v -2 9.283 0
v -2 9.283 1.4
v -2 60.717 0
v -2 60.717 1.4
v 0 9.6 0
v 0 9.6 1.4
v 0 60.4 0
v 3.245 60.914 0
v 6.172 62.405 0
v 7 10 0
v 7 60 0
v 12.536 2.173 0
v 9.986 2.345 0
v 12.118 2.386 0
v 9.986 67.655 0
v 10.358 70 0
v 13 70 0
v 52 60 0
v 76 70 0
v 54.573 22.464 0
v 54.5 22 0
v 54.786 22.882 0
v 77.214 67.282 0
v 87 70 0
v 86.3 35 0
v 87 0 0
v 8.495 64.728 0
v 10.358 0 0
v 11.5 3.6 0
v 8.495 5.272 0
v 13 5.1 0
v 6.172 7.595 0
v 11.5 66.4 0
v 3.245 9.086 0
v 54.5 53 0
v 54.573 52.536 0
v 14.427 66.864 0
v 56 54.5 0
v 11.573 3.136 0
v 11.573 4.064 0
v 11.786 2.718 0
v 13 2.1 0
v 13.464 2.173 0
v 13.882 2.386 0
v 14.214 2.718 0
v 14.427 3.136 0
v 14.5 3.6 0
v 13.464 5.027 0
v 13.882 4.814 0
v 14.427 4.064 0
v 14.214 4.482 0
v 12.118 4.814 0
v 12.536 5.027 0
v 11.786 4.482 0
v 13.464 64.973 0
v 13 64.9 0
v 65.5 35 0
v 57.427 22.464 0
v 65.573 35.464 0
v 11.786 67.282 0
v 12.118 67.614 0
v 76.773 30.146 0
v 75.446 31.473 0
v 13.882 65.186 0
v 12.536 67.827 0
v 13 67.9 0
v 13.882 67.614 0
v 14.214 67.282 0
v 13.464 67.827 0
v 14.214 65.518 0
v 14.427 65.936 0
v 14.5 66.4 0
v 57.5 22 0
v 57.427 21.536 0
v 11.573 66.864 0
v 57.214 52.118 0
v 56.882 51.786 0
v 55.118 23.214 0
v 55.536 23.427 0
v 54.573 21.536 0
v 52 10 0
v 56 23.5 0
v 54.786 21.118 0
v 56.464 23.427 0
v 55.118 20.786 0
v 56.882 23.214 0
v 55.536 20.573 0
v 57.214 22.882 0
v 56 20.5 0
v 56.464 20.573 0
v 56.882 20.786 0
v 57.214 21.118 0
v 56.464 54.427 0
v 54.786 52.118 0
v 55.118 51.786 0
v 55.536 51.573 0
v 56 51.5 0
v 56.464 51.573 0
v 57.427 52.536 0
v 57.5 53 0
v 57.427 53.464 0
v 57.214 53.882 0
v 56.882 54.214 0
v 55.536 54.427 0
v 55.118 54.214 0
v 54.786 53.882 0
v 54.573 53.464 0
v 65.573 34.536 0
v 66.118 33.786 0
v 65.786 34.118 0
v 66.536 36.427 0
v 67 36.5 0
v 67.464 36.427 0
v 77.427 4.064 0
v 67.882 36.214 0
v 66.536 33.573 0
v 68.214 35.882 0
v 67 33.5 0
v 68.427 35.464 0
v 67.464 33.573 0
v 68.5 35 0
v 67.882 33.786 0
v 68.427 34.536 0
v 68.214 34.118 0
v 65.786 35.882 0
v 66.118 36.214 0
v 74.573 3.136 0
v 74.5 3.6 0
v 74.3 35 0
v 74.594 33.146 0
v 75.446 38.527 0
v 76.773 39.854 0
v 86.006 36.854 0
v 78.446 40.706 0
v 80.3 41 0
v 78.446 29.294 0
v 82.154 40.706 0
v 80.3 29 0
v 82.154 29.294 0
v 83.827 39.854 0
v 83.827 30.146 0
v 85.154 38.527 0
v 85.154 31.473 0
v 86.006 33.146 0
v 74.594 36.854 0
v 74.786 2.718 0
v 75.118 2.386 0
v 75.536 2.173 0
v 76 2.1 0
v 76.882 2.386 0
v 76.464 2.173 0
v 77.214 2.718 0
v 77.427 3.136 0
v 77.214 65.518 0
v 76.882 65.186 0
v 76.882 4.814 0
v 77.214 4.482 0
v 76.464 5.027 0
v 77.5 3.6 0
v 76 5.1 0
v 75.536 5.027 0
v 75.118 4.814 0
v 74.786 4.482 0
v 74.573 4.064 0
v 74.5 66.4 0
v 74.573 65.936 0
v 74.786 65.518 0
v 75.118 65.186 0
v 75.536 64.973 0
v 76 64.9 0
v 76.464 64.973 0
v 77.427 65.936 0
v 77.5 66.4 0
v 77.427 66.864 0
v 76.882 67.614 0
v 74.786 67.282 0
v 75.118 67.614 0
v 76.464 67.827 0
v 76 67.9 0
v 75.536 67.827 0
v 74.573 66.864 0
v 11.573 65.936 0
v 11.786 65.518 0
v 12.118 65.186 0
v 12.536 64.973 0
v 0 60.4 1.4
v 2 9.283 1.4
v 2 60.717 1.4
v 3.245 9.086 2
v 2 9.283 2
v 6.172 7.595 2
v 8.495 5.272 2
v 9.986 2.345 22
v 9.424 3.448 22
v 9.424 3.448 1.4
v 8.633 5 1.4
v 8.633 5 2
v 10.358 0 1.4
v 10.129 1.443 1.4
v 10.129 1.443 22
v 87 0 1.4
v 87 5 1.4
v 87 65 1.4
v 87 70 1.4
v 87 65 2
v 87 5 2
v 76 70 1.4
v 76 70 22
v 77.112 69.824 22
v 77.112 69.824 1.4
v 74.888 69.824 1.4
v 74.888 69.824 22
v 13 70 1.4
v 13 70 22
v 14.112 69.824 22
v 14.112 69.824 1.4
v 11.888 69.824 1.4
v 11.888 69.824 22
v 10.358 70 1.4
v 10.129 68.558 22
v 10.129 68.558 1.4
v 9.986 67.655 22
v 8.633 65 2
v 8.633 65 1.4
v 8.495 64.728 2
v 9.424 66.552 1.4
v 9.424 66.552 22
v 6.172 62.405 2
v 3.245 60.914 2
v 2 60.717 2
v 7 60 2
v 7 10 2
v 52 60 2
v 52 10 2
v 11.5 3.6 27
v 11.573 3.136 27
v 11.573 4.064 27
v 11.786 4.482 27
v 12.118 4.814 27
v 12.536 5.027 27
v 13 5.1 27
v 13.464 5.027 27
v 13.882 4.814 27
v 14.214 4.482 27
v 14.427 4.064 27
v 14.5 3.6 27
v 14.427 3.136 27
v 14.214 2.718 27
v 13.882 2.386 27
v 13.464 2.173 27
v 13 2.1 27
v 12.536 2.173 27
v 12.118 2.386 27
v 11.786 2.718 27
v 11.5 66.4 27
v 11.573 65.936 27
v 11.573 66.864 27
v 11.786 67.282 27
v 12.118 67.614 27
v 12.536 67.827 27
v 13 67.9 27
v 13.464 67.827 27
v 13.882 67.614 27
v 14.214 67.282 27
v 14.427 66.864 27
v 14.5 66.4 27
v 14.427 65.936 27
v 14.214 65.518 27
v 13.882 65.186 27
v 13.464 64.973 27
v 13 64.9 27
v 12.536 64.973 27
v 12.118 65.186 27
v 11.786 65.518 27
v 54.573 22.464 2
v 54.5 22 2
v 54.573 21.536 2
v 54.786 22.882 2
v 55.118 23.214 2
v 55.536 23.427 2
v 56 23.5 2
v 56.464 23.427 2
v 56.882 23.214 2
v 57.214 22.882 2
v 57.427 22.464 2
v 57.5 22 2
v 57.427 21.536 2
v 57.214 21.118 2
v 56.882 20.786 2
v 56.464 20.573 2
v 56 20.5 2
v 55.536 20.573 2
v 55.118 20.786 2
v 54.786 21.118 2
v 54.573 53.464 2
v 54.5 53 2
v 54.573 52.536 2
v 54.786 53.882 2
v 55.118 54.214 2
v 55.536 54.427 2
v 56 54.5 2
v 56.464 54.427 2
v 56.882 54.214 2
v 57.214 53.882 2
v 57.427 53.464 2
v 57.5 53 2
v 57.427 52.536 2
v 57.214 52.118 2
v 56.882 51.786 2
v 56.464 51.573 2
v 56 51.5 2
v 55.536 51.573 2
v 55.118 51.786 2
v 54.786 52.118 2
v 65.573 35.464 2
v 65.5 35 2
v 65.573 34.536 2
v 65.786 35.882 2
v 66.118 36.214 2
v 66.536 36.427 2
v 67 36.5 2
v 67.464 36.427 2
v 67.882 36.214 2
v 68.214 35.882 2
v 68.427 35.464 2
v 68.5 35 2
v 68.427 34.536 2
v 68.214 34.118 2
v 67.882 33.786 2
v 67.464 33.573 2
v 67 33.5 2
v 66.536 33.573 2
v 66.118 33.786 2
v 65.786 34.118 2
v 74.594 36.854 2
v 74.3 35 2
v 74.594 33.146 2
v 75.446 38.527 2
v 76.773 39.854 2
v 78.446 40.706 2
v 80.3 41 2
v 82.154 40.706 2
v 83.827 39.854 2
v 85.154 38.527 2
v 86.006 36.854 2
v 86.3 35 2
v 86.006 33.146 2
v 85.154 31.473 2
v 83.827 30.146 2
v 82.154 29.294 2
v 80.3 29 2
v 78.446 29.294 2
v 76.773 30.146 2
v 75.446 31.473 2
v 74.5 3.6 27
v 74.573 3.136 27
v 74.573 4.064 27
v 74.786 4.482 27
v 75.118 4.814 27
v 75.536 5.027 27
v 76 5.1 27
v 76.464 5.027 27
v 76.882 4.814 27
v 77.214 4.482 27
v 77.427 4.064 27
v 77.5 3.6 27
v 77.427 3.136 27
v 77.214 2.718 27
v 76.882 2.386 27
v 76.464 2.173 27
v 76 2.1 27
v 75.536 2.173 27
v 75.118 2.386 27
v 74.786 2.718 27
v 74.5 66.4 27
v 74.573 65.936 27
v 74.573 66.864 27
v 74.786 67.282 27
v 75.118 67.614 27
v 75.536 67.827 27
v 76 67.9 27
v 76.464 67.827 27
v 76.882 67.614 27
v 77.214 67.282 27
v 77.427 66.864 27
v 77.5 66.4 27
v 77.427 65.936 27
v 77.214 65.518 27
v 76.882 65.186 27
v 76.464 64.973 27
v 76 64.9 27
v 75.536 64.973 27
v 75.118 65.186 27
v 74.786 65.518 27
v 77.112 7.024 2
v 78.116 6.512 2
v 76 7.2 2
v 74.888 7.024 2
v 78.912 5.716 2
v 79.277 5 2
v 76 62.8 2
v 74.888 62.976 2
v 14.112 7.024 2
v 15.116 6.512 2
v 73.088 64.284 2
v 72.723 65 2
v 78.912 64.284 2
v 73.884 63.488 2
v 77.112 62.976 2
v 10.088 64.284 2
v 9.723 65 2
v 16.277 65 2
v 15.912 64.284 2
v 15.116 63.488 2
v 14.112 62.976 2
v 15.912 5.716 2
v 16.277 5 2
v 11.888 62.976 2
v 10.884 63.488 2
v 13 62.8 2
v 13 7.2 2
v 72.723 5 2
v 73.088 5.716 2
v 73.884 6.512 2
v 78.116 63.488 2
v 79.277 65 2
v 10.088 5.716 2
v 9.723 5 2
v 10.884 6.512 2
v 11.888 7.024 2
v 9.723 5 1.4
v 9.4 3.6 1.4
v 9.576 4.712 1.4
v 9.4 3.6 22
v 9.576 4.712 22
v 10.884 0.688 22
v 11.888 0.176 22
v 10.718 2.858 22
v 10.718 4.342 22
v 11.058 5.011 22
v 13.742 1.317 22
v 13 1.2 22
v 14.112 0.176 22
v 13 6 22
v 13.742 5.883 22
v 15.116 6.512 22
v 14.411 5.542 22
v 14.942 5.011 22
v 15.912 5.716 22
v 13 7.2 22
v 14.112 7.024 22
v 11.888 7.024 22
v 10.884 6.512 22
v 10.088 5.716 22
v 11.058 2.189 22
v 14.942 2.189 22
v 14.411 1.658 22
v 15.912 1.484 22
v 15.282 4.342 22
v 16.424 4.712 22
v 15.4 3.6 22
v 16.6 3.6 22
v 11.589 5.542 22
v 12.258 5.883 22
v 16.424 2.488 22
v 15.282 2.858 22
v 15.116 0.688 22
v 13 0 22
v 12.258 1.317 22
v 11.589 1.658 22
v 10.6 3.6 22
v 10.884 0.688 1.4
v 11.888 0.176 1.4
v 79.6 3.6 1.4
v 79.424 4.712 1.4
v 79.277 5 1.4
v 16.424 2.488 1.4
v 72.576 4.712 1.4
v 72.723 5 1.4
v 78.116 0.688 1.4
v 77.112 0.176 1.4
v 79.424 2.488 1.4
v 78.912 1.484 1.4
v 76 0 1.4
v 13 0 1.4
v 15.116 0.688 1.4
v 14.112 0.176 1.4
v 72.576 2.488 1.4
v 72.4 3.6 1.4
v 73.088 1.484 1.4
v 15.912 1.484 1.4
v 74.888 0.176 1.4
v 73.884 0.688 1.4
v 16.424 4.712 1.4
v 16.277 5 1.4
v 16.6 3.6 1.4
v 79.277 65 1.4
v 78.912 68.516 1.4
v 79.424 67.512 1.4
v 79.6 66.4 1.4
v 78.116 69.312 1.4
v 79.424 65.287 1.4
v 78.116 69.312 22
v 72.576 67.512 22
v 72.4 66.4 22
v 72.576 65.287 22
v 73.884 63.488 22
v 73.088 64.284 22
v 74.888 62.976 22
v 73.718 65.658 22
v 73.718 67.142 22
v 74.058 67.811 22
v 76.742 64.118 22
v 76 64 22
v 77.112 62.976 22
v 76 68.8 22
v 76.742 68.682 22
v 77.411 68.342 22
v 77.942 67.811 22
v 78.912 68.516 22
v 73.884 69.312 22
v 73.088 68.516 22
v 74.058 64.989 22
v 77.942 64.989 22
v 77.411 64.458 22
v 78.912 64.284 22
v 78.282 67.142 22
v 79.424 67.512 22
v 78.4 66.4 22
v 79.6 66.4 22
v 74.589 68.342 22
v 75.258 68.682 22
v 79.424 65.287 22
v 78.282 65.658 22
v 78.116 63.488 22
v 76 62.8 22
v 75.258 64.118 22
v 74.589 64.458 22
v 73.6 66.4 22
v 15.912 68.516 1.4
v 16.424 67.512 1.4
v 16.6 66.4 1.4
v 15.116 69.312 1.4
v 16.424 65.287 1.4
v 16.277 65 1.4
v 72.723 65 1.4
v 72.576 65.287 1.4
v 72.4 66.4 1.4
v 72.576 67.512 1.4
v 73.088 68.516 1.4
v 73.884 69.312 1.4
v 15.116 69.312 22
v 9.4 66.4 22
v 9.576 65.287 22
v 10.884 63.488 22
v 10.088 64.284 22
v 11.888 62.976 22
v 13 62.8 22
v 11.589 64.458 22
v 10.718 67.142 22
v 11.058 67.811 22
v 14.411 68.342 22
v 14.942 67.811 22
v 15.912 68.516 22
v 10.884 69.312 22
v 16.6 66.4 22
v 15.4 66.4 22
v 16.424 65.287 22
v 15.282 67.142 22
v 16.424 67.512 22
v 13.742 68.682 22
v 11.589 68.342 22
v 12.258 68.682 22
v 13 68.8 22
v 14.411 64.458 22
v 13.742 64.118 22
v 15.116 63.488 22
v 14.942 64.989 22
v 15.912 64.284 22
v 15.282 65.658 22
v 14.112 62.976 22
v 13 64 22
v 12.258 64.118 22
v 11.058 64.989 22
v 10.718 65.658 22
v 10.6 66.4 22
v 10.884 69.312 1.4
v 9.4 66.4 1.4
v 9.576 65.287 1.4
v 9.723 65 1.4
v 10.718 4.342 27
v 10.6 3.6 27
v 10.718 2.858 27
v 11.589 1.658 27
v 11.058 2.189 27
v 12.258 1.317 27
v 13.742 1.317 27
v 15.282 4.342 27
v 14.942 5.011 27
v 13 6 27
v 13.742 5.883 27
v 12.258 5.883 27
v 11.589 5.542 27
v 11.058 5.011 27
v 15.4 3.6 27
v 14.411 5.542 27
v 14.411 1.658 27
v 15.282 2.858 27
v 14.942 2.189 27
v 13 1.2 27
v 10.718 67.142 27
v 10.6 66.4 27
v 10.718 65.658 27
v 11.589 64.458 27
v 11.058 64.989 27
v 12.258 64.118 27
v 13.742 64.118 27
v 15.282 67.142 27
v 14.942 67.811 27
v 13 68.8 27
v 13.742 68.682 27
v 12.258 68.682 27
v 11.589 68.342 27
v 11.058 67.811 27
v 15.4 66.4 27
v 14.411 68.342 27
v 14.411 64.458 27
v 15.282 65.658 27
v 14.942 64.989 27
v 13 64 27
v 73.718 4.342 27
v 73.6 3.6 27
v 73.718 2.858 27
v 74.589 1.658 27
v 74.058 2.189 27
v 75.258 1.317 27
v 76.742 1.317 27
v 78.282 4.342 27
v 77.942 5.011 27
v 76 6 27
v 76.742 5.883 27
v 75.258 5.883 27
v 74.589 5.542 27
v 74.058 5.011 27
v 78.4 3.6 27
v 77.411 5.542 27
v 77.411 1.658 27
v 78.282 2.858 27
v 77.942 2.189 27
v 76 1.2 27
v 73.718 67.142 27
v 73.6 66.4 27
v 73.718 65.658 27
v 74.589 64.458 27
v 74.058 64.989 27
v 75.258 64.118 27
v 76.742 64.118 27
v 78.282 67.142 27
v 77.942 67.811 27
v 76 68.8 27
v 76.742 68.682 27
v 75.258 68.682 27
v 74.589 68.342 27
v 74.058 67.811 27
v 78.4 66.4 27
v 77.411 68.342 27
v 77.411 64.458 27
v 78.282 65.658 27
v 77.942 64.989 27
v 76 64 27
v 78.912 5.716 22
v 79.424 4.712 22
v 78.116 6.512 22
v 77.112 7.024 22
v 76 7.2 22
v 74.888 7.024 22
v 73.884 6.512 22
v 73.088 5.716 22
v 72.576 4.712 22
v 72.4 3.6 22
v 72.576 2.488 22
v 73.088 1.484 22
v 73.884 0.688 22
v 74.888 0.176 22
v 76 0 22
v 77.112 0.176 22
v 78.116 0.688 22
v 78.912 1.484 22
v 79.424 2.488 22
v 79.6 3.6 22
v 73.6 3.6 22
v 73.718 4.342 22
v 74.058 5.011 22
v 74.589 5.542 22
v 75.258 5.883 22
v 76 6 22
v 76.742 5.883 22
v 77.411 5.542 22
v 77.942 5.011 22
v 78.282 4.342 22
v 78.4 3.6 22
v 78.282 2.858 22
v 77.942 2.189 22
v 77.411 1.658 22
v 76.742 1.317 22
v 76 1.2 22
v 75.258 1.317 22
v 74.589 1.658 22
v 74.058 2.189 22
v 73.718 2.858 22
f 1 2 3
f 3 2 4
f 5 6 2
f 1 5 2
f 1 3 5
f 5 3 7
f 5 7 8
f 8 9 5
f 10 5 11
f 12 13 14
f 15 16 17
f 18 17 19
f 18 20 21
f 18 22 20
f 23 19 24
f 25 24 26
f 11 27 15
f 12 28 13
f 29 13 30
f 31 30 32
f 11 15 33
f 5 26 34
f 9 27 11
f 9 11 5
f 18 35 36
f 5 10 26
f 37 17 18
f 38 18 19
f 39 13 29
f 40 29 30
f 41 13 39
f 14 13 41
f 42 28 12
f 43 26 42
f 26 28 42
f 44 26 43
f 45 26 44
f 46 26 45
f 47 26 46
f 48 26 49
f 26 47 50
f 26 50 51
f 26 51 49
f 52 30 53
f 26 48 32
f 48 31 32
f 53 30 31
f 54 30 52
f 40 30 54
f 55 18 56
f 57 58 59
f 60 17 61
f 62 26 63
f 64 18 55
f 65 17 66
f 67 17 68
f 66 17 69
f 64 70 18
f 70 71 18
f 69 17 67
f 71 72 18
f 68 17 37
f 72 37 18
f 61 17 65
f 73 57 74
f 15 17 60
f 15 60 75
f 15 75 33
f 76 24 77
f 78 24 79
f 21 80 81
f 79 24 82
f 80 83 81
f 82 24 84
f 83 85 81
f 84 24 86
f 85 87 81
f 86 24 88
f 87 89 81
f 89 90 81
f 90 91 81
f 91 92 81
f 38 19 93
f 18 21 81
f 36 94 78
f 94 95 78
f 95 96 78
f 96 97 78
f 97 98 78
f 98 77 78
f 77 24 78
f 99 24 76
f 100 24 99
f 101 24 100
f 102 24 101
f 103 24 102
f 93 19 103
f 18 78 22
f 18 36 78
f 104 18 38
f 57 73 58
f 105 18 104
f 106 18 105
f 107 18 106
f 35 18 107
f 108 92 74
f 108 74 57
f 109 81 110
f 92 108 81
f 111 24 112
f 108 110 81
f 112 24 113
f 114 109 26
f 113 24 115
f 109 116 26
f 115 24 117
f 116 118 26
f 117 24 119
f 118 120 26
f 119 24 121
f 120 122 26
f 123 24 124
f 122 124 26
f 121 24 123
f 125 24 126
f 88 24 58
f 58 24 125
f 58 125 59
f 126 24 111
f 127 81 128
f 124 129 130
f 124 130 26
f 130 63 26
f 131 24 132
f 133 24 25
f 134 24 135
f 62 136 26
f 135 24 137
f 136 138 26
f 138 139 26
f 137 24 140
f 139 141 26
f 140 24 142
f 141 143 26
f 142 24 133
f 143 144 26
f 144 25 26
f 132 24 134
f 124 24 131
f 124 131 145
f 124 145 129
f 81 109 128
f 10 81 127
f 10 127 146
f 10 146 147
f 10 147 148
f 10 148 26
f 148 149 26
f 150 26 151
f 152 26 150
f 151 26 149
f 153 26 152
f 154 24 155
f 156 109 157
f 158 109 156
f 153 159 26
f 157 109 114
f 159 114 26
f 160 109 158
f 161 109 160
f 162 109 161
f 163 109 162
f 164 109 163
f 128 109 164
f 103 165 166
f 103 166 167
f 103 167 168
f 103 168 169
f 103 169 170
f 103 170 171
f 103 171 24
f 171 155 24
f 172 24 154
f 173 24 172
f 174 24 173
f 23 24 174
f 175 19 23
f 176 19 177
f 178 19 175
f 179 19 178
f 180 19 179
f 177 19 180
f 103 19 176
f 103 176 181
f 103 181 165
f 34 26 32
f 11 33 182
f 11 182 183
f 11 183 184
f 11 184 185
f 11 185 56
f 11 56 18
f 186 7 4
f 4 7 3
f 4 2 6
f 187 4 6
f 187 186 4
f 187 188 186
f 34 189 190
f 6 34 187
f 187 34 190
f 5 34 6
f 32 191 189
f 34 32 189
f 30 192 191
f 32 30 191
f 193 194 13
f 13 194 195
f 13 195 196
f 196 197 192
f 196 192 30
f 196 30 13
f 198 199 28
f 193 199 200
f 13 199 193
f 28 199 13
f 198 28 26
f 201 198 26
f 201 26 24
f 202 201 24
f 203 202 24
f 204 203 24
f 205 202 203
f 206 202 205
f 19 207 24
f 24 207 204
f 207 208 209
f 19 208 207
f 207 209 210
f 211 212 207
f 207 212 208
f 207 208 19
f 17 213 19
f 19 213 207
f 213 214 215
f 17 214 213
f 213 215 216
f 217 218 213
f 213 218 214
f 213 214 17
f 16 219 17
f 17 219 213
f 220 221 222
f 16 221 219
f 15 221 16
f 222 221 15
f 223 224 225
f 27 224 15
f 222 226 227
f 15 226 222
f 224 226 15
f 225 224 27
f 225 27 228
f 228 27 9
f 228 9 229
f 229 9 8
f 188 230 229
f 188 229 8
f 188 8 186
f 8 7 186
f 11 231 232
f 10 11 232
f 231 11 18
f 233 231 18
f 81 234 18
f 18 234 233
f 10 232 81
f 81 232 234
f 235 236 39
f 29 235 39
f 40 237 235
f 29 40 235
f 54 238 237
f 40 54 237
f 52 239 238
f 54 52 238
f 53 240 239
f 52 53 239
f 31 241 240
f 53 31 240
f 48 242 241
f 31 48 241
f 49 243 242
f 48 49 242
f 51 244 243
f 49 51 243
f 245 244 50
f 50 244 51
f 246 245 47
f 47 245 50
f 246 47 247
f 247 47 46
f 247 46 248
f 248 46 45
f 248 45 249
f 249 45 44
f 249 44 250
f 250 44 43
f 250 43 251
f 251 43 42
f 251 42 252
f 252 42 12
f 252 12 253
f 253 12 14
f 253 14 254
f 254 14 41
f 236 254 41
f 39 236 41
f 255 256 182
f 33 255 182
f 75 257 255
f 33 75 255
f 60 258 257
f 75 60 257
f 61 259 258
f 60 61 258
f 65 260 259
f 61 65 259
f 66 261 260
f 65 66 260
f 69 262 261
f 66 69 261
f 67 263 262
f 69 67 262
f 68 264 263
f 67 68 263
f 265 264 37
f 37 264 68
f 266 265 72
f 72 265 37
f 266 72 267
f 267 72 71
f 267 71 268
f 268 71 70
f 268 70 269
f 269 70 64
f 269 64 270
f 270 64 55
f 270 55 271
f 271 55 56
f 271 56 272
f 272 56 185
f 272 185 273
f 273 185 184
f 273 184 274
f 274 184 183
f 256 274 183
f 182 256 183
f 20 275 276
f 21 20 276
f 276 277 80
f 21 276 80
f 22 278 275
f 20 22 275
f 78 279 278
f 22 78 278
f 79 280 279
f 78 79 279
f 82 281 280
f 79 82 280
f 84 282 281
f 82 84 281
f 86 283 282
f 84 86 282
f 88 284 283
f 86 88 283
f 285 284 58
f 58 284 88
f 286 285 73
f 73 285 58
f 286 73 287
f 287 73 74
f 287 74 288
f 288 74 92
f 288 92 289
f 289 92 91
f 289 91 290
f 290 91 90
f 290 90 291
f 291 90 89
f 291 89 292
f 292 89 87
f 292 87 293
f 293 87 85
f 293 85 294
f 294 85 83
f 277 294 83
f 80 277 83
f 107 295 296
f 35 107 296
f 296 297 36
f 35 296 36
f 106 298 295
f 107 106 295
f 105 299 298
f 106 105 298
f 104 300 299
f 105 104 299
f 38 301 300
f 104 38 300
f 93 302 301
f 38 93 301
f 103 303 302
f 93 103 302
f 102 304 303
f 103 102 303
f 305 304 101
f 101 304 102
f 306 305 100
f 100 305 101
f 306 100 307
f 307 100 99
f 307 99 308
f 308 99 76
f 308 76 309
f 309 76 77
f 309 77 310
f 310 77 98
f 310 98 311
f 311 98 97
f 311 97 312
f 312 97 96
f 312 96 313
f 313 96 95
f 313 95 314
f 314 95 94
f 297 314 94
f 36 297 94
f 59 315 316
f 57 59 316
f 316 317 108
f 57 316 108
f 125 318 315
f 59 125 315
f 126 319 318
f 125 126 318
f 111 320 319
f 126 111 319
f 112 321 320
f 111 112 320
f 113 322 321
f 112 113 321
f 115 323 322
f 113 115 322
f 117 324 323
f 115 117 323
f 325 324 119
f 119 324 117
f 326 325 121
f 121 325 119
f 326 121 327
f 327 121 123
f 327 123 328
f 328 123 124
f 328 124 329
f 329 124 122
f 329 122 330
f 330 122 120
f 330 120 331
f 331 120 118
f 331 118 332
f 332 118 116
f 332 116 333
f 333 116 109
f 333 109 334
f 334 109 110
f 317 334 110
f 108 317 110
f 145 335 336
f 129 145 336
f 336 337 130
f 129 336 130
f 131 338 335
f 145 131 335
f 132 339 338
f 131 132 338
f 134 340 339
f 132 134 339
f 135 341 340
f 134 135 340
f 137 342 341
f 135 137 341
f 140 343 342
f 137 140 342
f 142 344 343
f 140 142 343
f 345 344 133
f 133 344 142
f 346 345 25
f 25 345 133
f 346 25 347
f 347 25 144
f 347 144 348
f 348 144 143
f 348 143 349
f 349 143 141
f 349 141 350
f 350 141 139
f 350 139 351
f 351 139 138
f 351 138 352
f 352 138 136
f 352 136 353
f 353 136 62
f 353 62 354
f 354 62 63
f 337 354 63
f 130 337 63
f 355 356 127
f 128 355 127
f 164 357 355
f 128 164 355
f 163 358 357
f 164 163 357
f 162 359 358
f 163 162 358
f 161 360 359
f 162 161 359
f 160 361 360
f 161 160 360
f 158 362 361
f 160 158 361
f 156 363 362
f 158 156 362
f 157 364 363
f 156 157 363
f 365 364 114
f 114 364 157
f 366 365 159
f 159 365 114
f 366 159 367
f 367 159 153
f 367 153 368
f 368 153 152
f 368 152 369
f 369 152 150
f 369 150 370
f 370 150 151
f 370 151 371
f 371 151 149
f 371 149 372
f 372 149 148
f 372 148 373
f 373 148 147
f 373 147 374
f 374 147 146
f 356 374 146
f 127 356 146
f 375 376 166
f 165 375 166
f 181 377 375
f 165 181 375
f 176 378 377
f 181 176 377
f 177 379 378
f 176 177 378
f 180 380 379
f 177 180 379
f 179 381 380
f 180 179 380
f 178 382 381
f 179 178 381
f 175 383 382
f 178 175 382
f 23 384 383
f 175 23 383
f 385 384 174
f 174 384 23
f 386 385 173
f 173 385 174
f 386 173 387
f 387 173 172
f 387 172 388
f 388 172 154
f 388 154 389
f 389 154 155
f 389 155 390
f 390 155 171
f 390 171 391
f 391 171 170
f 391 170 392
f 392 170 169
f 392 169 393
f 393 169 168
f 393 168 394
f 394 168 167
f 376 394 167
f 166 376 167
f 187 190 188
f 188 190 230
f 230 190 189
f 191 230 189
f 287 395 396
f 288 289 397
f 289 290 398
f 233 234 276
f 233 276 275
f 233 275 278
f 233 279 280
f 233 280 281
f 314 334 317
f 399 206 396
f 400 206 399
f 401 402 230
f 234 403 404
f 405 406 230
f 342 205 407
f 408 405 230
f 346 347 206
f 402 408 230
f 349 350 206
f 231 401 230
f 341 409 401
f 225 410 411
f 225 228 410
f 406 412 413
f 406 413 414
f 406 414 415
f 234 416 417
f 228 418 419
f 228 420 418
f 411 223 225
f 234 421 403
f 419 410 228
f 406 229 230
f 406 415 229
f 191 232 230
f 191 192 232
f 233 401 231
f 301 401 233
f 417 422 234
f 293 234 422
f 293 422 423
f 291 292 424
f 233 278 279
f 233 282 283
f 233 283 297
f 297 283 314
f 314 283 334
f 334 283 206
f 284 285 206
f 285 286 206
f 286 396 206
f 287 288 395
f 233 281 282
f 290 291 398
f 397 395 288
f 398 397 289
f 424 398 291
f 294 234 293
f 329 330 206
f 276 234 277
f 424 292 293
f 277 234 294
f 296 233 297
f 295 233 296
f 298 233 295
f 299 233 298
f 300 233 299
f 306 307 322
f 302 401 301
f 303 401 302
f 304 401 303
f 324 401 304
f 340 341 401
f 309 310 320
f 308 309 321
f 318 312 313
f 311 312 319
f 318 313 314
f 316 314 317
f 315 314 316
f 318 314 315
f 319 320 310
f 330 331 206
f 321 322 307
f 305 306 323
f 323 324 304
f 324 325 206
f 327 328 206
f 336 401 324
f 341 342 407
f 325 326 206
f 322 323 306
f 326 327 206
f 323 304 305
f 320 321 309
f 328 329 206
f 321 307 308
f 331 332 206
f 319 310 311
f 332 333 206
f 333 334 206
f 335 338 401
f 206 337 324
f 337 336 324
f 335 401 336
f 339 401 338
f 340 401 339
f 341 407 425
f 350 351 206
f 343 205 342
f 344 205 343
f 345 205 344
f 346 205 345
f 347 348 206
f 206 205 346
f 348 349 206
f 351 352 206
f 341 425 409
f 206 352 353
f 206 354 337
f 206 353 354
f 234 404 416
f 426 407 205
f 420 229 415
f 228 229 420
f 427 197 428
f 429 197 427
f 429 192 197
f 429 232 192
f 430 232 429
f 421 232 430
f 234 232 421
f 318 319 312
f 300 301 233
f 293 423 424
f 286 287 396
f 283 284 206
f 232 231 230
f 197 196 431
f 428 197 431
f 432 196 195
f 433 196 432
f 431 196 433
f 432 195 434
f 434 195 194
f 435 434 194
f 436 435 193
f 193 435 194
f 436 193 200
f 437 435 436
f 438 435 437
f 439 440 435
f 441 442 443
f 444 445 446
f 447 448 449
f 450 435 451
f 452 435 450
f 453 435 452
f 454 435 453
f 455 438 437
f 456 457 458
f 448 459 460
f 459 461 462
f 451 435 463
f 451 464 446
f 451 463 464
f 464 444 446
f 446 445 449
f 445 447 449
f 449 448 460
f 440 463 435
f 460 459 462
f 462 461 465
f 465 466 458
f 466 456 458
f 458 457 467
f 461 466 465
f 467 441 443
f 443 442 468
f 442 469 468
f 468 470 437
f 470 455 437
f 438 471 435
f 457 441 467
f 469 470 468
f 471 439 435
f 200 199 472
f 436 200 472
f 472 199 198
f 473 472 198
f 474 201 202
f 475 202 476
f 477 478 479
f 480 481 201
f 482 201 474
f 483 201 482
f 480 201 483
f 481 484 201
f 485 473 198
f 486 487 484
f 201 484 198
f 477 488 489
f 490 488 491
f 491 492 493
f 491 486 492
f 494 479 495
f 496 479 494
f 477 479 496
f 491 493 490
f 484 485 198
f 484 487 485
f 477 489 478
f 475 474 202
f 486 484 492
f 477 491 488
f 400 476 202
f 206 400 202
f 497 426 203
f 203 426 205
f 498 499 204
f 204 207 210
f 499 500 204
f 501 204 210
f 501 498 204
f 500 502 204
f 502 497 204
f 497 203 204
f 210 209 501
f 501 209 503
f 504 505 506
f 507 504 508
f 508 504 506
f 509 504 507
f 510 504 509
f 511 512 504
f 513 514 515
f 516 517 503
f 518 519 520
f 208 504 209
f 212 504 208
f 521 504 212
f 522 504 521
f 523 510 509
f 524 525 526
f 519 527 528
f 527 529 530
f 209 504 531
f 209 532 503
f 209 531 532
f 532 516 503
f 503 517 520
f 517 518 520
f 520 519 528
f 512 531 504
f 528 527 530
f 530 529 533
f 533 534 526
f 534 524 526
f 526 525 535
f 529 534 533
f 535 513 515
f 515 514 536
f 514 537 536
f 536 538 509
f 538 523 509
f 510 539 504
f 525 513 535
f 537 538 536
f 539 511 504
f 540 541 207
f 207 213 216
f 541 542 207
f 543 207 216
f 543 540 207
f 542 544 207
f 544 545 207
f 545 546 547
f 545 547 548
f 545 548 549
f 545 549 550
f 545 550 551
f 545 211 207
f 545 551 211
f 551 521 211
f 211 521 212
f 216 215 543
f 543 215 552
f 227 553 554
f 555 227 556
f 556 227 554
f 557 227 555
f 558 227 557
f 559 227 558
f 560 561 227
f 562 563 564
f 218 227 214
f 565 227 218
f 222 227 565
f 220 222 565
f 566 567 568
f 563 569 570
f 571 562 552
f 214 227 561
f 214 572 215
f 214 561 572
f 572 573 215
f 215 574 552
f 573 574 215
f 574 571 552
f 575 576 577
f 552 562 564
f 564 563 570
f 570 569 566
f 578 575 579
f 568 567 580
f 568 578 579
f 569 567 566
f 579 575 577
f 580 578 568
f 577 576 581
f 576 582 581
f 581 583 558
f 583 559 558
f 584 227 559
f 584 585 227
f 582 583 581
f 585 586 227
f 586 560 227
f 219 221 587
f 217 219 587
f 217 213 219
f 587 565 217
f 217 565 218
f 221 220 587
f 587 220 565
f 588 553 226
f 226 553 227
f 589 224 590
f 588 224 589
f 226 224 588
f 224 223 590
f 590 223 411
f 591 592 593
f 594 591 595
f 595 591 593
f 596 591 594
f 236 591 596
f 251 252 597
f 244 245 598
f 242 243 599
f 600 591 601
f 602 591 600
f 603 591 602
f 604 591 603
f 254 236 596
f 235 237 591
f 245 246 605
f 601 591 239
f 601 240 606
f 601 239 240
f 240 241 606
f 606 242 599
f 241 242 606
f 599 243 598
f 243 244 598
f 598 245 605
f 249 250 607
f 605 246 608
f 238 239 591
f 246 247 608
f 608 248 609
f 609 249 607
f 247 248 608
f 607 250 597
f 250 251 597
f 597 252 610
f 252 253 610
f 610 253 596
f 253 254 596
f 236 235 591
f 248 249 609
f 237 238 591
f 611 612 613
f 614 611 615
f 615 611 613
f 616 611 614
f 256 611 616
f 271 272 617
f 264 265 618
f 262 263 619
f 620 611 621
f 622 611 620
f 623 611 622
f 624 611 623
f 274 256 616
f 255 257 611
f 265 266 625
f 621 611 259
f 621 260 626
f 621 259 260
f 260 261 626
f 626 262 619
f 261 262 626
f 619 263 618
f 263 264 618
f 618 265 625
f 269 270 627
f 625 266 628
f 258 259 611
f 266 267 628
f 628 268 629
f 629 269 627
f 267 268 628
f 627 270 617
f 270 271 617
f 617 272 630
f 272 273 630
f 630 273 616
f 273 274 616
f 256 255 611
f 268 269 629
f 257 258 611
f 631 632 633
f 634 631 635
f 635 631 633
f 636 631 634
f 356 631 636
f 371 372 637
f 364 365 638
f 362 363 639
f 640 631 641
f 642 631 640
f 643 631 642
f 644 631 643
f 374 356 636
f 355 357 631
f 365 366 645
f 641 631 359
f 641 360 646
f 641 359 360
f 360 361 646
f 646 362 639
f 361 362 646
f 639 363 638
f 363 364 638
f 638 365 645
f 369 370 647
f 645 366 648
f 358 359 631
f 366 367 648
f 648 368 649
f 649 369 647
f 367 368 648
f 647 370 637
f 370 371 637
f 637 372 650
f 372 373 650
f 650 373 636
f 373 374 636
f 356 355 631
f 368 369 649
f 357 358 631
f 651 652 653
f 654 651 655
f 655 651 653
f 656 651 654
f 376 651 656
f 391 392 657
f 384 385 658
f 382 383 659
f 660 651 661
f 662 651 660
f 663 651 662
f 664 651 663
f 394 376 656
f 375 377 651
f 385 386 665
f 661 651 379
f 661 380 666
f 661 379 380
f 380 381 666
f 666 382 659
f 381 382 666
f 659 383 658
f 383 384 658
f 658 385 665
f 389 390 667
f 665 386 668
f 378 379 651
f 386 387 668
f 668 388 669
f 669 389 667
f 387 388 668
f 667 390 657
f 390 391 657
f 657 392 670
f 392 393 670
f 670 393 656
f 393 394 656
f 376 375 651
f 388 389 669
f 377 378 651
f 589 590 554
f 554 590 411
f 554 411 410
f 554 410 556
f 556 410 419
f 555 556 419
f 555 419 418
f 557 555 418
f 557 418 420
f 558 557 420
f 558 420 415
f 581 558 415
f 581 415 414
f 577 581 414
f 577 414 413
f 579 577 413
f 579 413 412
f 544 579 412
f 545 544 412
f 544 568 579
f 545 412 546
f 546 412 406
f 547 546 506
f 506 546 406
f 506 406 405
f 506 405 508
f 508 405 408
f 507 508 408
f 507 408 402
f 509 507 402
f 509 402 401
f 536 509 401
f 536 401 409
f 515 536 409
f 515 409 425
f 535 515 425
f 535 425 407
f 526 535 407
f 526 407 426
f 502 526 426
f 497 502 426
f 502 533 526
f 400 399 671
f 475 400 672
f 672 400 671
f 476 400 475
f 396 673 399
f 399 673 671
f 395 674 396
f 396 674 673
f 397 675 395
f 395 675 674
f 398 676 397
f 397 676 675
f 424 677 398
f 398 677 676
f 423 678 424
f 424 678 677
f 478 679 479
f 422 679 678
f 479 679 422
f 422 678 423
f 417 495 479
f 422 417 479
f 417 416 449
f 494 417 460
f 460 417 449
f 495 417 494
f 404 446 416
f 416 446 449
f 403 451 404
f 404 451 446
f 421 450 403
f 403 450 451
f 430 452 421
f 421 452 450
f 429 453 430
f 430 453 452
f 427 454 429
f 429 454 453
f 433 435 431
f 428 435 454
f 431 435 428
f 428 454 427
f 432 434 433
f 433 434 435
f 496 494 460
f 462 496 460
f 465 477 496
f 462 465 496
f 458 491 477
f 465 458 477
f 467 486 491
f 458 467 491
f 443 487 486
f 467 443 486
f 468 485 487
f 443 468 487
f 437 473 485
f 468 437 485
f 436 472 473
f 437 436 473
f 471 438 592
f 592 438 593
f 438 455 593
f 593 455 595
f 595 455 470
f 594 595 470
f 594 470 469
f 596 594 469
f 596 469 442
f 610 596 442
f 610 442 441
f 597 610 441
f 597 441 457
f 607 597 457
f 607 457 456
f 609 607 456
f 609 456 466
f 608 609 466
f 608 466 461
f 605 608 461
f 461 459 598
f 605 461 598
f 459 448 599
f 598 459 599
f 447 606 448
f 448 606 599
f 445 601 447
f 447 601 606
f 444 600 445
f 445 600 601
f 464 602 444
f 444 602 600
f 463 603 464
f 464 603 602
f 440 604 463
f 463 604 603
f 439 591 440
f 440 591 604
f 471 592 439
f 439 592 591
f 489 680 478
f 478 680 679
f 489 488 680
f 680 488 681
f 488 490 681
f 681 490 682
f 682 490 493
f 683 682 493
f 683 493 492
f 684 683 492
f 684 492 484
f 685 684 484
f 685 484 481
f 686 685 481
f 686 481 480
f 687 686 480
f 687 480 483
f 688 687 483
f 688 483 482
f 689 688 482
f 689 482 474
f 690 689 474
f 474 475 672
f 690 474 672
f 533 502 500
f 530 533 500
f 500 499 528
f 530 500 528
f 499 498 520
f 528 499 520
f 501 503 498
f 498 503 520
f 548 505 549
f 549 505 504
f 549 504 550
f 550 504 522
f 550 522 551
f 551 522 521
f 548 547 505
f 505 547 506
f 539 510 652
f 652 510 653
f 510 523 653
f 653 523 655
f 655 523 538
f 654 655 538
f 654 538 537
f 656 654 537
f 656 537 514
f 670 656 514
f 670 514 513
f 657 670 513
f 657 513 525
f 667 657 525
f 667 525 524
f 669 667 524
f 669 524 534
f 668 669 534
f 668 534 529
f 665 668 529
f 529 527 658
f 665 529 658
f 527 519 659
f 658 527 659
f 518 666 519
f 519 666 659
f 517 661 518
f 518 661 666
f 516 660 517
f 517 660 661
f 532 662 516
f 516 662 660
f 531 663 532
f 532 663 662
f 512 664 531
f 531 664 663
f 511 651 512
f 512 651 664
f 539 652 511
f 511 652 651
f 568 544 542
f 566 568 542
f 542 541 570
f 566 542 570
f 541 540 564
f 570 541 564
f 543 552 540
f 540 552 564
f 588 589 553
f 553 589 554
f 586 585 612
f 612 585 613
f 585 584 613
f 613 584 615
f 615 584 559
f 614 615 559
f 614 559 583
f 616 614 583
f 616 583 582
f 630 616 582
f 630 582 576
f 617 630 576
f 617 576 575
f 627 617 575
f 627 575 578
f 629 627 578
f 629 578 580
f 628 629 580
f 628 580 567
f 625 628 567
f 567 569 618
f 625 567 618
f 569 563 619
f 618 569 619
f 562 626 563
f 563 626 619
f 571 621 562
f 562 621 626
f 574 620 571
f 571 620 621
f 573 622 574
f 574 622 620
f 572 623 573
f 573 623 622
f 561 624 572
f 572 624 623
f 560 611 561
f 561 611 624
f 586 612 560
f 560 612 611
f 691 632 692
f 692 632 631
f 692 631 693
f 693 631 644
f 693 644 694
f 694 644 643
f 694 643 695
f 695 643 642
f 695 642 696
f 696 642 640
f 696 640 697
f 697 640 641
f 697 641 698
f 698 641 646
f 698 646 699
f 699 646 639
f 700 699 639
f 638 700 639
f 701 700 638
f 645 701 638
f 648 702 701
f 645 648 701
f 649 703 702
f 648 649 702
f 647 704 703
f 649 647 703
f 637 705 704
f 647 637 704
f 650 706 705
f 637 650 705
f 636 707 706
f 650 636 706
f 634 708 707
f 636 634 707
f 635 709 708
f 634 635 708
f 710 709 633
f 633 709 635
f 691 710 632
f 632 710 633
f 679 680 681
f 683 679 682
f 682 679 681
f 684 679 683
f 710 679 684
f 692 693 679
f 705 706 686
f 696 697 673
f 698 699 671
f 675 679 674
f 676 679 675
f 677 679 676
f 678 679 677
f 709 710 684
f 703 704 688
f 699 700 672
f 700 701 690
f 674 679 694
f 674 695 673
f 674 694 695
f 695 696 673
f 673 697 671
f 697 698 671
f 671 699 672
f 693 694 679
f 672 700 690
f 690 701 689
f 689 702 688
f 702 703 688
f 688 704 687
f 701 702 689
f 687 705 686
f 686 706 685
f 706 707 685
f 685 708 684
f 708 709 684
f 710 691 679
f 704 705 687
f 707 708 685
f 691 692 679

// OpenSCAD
// file: pitop.scad
small = 0.1;
peg_bite  =  1.0;
bite_extra = 0.2;  // extra clearance for edge of board
peg_gap   =  2.0;
peg_width =  5.0;
peg_depth =  3.0;
peg_sep   =  56 - 2;
peg_raise =  4.0;

board_x = 85.0;
board_y = 56.0;
board_z =  1.1;

//   _
//  | \
//  |  \
//  |   \
//  |  /
//  |  |
//  |  o-|  <- origin
//  |    |
//  |    |
//  ------
module peg()
{
  extra = 1;

  translate([0, -peg_depth+peg_bite,-peg_raise])
  {
    cube([peg_width,peg_depth,peg_raise], center=false);
  }

  translate([0, -peg_depth+peg_bite,0])
  {
    cube([peg_width,peg_depth-peg_bite-bite_extra,peg_gap+peg_bite+peg_bite], center=false);
  }

  translate([0,-peg_depth+peg_bite+extra-extra,peg_gap])
  {
    //cube([peg_width,peg_depth-peg_bite-extra,peg_bite+extra], center=false);
  }

  peg_dxy = peg_depth;
  polyhedron(
    points = [
      [0, peg_bite, peg_gap+peg_bite],
      [0, peg_bite-peg_dxy, peg_gap+peg_bite-peg_dxy],
      [0, peg_bite-peg_dxy, peg_gap+peg_bite+peg_dxy],
      [peg_width, peg_bite, peg_gap+peg_bite],
      [peg_width, peg_bite-peg_dxy, peg_gap+peg_bite-peg_dxy],
      [peg_width, peg_bite-peg_dxy, peg_gap+peg_bite+peg_dxy],
    ],
    triangles = [ 
      [0,2,1],  // right
      [3,4,5],  // left
      [0,3,2],  // top
      [2,3,5],
      [1,2,4],  // back
      [4,2,5],
      [0,1,3],  // bottom
      [3,1,4]
    ]
  );
}

module front_peg(x)
{
  translate([x,0,0]) 
  {
    peg();
  }
}

module back_peg(x)
{
  translate([x,board_y,0])
  {
    mirror([0,1,0])
    {
      peg();
    }
  }
}


module board()
{
  color([0,1,0]) {
    cube([board_x,board_y,board_z],center=false);
  }
  // ethernet block
  large = 10;
  translate([-1,38,board_z]) 
  {
    cube([21,16.5,14.0]);
    translate([-10.0+small,0,0]) cube([10.0,16.5,14]);  // clearance volume - keep clear
    translate([-10.0,0,0]) cube([10.0+large,16.5,15+2]);  // extra clearance above to height of usb
  }

  // usb block
  translate([0,18,board_z]) 
  {
    translate([-7.5,0,1]) cube([18,14,16]);
    translate([-3,2,0]) cube([13,10,1+small]);
  }

  // hdmi block
  translate([board_x-5.0,44.0,board_z])
  {
    cube([6.0,9.0,4.0]);
    translate([6.0-small,0,0]) cube([10.0,9.0,4.0]);  // clearance volume - keep clear
  }

  // SD Card clearance
  translate([board_x-small,14.0,-3.5])
  {
    difference()
    {
      cube([17.0+small, 25.0, 3.0]);  // clearance volume - keep clear
      translate([-small,10.0,-small]) cube([17.0+small*3,5.0,3+small*2]);
    }
  }

  // audio connector
  translate([13.5, 0, 4.4]) {
    cube([12.0,11.0, 6.5]);
    translate([6.0,0.0,3.25]) rotate([90,0,0]) cylinder(h=4, r=6.5/2);
    translate([6.0,-4+small,3.25]) rotate([90,0,0]) cylinder(h=10, r=6.5/2);  // clearance volume
  }

  // video connector
  translate([33.0,3.0,board_z]) {
    cube([10.0,10.0,13.0]);
    translate([5,0,7.5]) rotate([90,0,0]) cylinder(h=9,r=8.5/2);
    translate([5,0,7.5]) rotate([90,0,0]) cylinder(h=19,r=10.0/2);
  }
}

module pair()
{
  foot_height = 2.0;
  foot_x = peg_width;
  foot_y = board_y + (peg_depth-peg_bite) * 2;
  translate([0,-peg_depth+peg_bite,-peg_raise-foot_height])
  {
    cube([foot_x,foot_y,foot_height],center=false);
  }
}

rh = 6;
bs = 0.7;

module pibase()
{
  //front_peg(3.0);
  //back_peg(3.0);
  //front_peg(board_x-peg_width-3.0);
  //back_peg(board_x-peg_width-3.0);

  pair();
  translate([board_x-7*peg_width,0,0])
  {
    	difference(){
			scale([7,1,1]) pair();
			translate([+7*peg_width-rh-bs,board_y/2,-10])cylinder(h=50,r=rh);
			translate([7*peg_width-20,board_y/2,-10])cylinder(h=50,r=1.5);
			translate([7*peg_width-31,board_y/2-13,-10])cylinder(h=50,r=1.5);
			translate([7*peg_width-31,board_y/2+18,-10])cylinder(h=50,r=1.5);

		}
  }

  // more pegs

  //front_peg(25.0);
  //front_peg(board_x-25.0-peg_width);
  //back_peg(25.0);
  //back_peg(board_x-25.0-peg_width);


  peg3_offet = 25.0;
  
  
  spar_width = peg_width;
  spar_height = 2.0;
  translate([0,-peg_depth+peg_bite,-peg_raise-spar_height]) {
    cube([board_x, spar_width, spar_height]);
  }
  translate([0,board_y-spar_width+peg_depth-peg_bite,-peg_raise-spar_height]) {
    cube([board_x, spar_width, spar_height]);
  }
}

pibase();
//%board();
// main file
use <pitop.scad>

small = 0.1;

board_x = 85.0;
board_y = 56.0;

clearance = 1.0;
base_thickness = 1.0;
floor_thickness = 1.4;
base_x = board_x + base_thickness*2 + clearance*2;
base_y = 70.0;
base_z = 27.0;

board_dx = base_thickness + clearance;
board_dy = (base_y-board_y)/2;
board_dz = 4.0+2.0;

$fa = 1;
$fs = 1;
$fn = 20;

module base_volume()
{
  cube([base_x,base_y,base_z]);
}

module wall(length)
{
  cube([length, base_thickness, base_z]);
}

tab_x = 10.0;
tab_y = 10.0;
tab_r = 2;

module tab()
{
  translate([base_x/2-tab_x/2,-tab_y,0])
  difference() {
    cube([tab_x, tab_y, floor_thickness]);
    translate([tab_x/2,tab_y/2,-small])
    cylinder(r=tab_r,h=floor_thickness+2*small);
  }
}

module floor()
{
  width = 7.0;
  //tab();
  //translate([0,base_y+tab_y,0]) tab();
  difference() {
    translate([-2,0,0]) cube([base_x, base_y, floor_thickness]);
    translate([width,width,-small]) {
      cube([base_x-width-2, base_y-width*2, floor_thickness+small*2]);
    }
  }
}

module walls()
{
  // wall(base_x);        

  // rotate([0,0,180]) {
  //  translate([-base_x,-base_y,0]) {
  //    wall(base_x);
  //  }
  //}

  rotate([0,0,90]) {
    translate([0,-base_x,0]) {
      wall(base_y);
    }
  }
  rotate([0,0,270]) {
    translate([-base_y,0,0]) {
      wall(base_y);
    }
  }
}

peg_or = 3.6;
peg_ir = peg_or-0.7;
peg_cap = 5;
peg_pilot_ir = 1.5;
peg_pilot = 10;

module peg()
{
  cylinder(h=base_z-peg_cap, r=peg_or);
  translate([0,0,base_z-peg_cap])cylinder(h=peg_cap, r=peg_ir-0.5);

}

module peg_negative()
{
    cylinder(h=base_z, r=peg_pilot_ir);
}

module pegs()
{
  translate([13,peg_or,0]) peg();
  translate([base_x-13,peg_or,0]) peg();
  translate([13,base_y-peg_or,0]) peg();
  translate([base_x-13,base_y-peg_or,0]) peg();
}

module pegs_negative()
{
  translate([0,peg_or-4.5,-1]) cylinder(h=base_z+2, r=10.5);
  translate([0,base_y-peg_or+4.5,-1]) cylinder(h=base_z+2, r=10.5);

  translate([13,peg_or,0]) peg_negative();
  translate([base_x-13,peg_or,0]) peg_negative();
  translate([13,base_y-peg_or,0]) peg_negative();
  translate([base_x-13,base_y-peg_or,0]) peg_negative();
}

module base()
{
  translate([board_dx,board_dy,board_dz]) pibase();
  floor();
 
}

difference() 
{
  union() 
  {
    //translate([board_dx, base_y-board_dy, board_dz+base_z])rotate([180,0,0]) %board();
    base();
    //%base_volume();
    pegs();
  }
  pegs_negative();
}
